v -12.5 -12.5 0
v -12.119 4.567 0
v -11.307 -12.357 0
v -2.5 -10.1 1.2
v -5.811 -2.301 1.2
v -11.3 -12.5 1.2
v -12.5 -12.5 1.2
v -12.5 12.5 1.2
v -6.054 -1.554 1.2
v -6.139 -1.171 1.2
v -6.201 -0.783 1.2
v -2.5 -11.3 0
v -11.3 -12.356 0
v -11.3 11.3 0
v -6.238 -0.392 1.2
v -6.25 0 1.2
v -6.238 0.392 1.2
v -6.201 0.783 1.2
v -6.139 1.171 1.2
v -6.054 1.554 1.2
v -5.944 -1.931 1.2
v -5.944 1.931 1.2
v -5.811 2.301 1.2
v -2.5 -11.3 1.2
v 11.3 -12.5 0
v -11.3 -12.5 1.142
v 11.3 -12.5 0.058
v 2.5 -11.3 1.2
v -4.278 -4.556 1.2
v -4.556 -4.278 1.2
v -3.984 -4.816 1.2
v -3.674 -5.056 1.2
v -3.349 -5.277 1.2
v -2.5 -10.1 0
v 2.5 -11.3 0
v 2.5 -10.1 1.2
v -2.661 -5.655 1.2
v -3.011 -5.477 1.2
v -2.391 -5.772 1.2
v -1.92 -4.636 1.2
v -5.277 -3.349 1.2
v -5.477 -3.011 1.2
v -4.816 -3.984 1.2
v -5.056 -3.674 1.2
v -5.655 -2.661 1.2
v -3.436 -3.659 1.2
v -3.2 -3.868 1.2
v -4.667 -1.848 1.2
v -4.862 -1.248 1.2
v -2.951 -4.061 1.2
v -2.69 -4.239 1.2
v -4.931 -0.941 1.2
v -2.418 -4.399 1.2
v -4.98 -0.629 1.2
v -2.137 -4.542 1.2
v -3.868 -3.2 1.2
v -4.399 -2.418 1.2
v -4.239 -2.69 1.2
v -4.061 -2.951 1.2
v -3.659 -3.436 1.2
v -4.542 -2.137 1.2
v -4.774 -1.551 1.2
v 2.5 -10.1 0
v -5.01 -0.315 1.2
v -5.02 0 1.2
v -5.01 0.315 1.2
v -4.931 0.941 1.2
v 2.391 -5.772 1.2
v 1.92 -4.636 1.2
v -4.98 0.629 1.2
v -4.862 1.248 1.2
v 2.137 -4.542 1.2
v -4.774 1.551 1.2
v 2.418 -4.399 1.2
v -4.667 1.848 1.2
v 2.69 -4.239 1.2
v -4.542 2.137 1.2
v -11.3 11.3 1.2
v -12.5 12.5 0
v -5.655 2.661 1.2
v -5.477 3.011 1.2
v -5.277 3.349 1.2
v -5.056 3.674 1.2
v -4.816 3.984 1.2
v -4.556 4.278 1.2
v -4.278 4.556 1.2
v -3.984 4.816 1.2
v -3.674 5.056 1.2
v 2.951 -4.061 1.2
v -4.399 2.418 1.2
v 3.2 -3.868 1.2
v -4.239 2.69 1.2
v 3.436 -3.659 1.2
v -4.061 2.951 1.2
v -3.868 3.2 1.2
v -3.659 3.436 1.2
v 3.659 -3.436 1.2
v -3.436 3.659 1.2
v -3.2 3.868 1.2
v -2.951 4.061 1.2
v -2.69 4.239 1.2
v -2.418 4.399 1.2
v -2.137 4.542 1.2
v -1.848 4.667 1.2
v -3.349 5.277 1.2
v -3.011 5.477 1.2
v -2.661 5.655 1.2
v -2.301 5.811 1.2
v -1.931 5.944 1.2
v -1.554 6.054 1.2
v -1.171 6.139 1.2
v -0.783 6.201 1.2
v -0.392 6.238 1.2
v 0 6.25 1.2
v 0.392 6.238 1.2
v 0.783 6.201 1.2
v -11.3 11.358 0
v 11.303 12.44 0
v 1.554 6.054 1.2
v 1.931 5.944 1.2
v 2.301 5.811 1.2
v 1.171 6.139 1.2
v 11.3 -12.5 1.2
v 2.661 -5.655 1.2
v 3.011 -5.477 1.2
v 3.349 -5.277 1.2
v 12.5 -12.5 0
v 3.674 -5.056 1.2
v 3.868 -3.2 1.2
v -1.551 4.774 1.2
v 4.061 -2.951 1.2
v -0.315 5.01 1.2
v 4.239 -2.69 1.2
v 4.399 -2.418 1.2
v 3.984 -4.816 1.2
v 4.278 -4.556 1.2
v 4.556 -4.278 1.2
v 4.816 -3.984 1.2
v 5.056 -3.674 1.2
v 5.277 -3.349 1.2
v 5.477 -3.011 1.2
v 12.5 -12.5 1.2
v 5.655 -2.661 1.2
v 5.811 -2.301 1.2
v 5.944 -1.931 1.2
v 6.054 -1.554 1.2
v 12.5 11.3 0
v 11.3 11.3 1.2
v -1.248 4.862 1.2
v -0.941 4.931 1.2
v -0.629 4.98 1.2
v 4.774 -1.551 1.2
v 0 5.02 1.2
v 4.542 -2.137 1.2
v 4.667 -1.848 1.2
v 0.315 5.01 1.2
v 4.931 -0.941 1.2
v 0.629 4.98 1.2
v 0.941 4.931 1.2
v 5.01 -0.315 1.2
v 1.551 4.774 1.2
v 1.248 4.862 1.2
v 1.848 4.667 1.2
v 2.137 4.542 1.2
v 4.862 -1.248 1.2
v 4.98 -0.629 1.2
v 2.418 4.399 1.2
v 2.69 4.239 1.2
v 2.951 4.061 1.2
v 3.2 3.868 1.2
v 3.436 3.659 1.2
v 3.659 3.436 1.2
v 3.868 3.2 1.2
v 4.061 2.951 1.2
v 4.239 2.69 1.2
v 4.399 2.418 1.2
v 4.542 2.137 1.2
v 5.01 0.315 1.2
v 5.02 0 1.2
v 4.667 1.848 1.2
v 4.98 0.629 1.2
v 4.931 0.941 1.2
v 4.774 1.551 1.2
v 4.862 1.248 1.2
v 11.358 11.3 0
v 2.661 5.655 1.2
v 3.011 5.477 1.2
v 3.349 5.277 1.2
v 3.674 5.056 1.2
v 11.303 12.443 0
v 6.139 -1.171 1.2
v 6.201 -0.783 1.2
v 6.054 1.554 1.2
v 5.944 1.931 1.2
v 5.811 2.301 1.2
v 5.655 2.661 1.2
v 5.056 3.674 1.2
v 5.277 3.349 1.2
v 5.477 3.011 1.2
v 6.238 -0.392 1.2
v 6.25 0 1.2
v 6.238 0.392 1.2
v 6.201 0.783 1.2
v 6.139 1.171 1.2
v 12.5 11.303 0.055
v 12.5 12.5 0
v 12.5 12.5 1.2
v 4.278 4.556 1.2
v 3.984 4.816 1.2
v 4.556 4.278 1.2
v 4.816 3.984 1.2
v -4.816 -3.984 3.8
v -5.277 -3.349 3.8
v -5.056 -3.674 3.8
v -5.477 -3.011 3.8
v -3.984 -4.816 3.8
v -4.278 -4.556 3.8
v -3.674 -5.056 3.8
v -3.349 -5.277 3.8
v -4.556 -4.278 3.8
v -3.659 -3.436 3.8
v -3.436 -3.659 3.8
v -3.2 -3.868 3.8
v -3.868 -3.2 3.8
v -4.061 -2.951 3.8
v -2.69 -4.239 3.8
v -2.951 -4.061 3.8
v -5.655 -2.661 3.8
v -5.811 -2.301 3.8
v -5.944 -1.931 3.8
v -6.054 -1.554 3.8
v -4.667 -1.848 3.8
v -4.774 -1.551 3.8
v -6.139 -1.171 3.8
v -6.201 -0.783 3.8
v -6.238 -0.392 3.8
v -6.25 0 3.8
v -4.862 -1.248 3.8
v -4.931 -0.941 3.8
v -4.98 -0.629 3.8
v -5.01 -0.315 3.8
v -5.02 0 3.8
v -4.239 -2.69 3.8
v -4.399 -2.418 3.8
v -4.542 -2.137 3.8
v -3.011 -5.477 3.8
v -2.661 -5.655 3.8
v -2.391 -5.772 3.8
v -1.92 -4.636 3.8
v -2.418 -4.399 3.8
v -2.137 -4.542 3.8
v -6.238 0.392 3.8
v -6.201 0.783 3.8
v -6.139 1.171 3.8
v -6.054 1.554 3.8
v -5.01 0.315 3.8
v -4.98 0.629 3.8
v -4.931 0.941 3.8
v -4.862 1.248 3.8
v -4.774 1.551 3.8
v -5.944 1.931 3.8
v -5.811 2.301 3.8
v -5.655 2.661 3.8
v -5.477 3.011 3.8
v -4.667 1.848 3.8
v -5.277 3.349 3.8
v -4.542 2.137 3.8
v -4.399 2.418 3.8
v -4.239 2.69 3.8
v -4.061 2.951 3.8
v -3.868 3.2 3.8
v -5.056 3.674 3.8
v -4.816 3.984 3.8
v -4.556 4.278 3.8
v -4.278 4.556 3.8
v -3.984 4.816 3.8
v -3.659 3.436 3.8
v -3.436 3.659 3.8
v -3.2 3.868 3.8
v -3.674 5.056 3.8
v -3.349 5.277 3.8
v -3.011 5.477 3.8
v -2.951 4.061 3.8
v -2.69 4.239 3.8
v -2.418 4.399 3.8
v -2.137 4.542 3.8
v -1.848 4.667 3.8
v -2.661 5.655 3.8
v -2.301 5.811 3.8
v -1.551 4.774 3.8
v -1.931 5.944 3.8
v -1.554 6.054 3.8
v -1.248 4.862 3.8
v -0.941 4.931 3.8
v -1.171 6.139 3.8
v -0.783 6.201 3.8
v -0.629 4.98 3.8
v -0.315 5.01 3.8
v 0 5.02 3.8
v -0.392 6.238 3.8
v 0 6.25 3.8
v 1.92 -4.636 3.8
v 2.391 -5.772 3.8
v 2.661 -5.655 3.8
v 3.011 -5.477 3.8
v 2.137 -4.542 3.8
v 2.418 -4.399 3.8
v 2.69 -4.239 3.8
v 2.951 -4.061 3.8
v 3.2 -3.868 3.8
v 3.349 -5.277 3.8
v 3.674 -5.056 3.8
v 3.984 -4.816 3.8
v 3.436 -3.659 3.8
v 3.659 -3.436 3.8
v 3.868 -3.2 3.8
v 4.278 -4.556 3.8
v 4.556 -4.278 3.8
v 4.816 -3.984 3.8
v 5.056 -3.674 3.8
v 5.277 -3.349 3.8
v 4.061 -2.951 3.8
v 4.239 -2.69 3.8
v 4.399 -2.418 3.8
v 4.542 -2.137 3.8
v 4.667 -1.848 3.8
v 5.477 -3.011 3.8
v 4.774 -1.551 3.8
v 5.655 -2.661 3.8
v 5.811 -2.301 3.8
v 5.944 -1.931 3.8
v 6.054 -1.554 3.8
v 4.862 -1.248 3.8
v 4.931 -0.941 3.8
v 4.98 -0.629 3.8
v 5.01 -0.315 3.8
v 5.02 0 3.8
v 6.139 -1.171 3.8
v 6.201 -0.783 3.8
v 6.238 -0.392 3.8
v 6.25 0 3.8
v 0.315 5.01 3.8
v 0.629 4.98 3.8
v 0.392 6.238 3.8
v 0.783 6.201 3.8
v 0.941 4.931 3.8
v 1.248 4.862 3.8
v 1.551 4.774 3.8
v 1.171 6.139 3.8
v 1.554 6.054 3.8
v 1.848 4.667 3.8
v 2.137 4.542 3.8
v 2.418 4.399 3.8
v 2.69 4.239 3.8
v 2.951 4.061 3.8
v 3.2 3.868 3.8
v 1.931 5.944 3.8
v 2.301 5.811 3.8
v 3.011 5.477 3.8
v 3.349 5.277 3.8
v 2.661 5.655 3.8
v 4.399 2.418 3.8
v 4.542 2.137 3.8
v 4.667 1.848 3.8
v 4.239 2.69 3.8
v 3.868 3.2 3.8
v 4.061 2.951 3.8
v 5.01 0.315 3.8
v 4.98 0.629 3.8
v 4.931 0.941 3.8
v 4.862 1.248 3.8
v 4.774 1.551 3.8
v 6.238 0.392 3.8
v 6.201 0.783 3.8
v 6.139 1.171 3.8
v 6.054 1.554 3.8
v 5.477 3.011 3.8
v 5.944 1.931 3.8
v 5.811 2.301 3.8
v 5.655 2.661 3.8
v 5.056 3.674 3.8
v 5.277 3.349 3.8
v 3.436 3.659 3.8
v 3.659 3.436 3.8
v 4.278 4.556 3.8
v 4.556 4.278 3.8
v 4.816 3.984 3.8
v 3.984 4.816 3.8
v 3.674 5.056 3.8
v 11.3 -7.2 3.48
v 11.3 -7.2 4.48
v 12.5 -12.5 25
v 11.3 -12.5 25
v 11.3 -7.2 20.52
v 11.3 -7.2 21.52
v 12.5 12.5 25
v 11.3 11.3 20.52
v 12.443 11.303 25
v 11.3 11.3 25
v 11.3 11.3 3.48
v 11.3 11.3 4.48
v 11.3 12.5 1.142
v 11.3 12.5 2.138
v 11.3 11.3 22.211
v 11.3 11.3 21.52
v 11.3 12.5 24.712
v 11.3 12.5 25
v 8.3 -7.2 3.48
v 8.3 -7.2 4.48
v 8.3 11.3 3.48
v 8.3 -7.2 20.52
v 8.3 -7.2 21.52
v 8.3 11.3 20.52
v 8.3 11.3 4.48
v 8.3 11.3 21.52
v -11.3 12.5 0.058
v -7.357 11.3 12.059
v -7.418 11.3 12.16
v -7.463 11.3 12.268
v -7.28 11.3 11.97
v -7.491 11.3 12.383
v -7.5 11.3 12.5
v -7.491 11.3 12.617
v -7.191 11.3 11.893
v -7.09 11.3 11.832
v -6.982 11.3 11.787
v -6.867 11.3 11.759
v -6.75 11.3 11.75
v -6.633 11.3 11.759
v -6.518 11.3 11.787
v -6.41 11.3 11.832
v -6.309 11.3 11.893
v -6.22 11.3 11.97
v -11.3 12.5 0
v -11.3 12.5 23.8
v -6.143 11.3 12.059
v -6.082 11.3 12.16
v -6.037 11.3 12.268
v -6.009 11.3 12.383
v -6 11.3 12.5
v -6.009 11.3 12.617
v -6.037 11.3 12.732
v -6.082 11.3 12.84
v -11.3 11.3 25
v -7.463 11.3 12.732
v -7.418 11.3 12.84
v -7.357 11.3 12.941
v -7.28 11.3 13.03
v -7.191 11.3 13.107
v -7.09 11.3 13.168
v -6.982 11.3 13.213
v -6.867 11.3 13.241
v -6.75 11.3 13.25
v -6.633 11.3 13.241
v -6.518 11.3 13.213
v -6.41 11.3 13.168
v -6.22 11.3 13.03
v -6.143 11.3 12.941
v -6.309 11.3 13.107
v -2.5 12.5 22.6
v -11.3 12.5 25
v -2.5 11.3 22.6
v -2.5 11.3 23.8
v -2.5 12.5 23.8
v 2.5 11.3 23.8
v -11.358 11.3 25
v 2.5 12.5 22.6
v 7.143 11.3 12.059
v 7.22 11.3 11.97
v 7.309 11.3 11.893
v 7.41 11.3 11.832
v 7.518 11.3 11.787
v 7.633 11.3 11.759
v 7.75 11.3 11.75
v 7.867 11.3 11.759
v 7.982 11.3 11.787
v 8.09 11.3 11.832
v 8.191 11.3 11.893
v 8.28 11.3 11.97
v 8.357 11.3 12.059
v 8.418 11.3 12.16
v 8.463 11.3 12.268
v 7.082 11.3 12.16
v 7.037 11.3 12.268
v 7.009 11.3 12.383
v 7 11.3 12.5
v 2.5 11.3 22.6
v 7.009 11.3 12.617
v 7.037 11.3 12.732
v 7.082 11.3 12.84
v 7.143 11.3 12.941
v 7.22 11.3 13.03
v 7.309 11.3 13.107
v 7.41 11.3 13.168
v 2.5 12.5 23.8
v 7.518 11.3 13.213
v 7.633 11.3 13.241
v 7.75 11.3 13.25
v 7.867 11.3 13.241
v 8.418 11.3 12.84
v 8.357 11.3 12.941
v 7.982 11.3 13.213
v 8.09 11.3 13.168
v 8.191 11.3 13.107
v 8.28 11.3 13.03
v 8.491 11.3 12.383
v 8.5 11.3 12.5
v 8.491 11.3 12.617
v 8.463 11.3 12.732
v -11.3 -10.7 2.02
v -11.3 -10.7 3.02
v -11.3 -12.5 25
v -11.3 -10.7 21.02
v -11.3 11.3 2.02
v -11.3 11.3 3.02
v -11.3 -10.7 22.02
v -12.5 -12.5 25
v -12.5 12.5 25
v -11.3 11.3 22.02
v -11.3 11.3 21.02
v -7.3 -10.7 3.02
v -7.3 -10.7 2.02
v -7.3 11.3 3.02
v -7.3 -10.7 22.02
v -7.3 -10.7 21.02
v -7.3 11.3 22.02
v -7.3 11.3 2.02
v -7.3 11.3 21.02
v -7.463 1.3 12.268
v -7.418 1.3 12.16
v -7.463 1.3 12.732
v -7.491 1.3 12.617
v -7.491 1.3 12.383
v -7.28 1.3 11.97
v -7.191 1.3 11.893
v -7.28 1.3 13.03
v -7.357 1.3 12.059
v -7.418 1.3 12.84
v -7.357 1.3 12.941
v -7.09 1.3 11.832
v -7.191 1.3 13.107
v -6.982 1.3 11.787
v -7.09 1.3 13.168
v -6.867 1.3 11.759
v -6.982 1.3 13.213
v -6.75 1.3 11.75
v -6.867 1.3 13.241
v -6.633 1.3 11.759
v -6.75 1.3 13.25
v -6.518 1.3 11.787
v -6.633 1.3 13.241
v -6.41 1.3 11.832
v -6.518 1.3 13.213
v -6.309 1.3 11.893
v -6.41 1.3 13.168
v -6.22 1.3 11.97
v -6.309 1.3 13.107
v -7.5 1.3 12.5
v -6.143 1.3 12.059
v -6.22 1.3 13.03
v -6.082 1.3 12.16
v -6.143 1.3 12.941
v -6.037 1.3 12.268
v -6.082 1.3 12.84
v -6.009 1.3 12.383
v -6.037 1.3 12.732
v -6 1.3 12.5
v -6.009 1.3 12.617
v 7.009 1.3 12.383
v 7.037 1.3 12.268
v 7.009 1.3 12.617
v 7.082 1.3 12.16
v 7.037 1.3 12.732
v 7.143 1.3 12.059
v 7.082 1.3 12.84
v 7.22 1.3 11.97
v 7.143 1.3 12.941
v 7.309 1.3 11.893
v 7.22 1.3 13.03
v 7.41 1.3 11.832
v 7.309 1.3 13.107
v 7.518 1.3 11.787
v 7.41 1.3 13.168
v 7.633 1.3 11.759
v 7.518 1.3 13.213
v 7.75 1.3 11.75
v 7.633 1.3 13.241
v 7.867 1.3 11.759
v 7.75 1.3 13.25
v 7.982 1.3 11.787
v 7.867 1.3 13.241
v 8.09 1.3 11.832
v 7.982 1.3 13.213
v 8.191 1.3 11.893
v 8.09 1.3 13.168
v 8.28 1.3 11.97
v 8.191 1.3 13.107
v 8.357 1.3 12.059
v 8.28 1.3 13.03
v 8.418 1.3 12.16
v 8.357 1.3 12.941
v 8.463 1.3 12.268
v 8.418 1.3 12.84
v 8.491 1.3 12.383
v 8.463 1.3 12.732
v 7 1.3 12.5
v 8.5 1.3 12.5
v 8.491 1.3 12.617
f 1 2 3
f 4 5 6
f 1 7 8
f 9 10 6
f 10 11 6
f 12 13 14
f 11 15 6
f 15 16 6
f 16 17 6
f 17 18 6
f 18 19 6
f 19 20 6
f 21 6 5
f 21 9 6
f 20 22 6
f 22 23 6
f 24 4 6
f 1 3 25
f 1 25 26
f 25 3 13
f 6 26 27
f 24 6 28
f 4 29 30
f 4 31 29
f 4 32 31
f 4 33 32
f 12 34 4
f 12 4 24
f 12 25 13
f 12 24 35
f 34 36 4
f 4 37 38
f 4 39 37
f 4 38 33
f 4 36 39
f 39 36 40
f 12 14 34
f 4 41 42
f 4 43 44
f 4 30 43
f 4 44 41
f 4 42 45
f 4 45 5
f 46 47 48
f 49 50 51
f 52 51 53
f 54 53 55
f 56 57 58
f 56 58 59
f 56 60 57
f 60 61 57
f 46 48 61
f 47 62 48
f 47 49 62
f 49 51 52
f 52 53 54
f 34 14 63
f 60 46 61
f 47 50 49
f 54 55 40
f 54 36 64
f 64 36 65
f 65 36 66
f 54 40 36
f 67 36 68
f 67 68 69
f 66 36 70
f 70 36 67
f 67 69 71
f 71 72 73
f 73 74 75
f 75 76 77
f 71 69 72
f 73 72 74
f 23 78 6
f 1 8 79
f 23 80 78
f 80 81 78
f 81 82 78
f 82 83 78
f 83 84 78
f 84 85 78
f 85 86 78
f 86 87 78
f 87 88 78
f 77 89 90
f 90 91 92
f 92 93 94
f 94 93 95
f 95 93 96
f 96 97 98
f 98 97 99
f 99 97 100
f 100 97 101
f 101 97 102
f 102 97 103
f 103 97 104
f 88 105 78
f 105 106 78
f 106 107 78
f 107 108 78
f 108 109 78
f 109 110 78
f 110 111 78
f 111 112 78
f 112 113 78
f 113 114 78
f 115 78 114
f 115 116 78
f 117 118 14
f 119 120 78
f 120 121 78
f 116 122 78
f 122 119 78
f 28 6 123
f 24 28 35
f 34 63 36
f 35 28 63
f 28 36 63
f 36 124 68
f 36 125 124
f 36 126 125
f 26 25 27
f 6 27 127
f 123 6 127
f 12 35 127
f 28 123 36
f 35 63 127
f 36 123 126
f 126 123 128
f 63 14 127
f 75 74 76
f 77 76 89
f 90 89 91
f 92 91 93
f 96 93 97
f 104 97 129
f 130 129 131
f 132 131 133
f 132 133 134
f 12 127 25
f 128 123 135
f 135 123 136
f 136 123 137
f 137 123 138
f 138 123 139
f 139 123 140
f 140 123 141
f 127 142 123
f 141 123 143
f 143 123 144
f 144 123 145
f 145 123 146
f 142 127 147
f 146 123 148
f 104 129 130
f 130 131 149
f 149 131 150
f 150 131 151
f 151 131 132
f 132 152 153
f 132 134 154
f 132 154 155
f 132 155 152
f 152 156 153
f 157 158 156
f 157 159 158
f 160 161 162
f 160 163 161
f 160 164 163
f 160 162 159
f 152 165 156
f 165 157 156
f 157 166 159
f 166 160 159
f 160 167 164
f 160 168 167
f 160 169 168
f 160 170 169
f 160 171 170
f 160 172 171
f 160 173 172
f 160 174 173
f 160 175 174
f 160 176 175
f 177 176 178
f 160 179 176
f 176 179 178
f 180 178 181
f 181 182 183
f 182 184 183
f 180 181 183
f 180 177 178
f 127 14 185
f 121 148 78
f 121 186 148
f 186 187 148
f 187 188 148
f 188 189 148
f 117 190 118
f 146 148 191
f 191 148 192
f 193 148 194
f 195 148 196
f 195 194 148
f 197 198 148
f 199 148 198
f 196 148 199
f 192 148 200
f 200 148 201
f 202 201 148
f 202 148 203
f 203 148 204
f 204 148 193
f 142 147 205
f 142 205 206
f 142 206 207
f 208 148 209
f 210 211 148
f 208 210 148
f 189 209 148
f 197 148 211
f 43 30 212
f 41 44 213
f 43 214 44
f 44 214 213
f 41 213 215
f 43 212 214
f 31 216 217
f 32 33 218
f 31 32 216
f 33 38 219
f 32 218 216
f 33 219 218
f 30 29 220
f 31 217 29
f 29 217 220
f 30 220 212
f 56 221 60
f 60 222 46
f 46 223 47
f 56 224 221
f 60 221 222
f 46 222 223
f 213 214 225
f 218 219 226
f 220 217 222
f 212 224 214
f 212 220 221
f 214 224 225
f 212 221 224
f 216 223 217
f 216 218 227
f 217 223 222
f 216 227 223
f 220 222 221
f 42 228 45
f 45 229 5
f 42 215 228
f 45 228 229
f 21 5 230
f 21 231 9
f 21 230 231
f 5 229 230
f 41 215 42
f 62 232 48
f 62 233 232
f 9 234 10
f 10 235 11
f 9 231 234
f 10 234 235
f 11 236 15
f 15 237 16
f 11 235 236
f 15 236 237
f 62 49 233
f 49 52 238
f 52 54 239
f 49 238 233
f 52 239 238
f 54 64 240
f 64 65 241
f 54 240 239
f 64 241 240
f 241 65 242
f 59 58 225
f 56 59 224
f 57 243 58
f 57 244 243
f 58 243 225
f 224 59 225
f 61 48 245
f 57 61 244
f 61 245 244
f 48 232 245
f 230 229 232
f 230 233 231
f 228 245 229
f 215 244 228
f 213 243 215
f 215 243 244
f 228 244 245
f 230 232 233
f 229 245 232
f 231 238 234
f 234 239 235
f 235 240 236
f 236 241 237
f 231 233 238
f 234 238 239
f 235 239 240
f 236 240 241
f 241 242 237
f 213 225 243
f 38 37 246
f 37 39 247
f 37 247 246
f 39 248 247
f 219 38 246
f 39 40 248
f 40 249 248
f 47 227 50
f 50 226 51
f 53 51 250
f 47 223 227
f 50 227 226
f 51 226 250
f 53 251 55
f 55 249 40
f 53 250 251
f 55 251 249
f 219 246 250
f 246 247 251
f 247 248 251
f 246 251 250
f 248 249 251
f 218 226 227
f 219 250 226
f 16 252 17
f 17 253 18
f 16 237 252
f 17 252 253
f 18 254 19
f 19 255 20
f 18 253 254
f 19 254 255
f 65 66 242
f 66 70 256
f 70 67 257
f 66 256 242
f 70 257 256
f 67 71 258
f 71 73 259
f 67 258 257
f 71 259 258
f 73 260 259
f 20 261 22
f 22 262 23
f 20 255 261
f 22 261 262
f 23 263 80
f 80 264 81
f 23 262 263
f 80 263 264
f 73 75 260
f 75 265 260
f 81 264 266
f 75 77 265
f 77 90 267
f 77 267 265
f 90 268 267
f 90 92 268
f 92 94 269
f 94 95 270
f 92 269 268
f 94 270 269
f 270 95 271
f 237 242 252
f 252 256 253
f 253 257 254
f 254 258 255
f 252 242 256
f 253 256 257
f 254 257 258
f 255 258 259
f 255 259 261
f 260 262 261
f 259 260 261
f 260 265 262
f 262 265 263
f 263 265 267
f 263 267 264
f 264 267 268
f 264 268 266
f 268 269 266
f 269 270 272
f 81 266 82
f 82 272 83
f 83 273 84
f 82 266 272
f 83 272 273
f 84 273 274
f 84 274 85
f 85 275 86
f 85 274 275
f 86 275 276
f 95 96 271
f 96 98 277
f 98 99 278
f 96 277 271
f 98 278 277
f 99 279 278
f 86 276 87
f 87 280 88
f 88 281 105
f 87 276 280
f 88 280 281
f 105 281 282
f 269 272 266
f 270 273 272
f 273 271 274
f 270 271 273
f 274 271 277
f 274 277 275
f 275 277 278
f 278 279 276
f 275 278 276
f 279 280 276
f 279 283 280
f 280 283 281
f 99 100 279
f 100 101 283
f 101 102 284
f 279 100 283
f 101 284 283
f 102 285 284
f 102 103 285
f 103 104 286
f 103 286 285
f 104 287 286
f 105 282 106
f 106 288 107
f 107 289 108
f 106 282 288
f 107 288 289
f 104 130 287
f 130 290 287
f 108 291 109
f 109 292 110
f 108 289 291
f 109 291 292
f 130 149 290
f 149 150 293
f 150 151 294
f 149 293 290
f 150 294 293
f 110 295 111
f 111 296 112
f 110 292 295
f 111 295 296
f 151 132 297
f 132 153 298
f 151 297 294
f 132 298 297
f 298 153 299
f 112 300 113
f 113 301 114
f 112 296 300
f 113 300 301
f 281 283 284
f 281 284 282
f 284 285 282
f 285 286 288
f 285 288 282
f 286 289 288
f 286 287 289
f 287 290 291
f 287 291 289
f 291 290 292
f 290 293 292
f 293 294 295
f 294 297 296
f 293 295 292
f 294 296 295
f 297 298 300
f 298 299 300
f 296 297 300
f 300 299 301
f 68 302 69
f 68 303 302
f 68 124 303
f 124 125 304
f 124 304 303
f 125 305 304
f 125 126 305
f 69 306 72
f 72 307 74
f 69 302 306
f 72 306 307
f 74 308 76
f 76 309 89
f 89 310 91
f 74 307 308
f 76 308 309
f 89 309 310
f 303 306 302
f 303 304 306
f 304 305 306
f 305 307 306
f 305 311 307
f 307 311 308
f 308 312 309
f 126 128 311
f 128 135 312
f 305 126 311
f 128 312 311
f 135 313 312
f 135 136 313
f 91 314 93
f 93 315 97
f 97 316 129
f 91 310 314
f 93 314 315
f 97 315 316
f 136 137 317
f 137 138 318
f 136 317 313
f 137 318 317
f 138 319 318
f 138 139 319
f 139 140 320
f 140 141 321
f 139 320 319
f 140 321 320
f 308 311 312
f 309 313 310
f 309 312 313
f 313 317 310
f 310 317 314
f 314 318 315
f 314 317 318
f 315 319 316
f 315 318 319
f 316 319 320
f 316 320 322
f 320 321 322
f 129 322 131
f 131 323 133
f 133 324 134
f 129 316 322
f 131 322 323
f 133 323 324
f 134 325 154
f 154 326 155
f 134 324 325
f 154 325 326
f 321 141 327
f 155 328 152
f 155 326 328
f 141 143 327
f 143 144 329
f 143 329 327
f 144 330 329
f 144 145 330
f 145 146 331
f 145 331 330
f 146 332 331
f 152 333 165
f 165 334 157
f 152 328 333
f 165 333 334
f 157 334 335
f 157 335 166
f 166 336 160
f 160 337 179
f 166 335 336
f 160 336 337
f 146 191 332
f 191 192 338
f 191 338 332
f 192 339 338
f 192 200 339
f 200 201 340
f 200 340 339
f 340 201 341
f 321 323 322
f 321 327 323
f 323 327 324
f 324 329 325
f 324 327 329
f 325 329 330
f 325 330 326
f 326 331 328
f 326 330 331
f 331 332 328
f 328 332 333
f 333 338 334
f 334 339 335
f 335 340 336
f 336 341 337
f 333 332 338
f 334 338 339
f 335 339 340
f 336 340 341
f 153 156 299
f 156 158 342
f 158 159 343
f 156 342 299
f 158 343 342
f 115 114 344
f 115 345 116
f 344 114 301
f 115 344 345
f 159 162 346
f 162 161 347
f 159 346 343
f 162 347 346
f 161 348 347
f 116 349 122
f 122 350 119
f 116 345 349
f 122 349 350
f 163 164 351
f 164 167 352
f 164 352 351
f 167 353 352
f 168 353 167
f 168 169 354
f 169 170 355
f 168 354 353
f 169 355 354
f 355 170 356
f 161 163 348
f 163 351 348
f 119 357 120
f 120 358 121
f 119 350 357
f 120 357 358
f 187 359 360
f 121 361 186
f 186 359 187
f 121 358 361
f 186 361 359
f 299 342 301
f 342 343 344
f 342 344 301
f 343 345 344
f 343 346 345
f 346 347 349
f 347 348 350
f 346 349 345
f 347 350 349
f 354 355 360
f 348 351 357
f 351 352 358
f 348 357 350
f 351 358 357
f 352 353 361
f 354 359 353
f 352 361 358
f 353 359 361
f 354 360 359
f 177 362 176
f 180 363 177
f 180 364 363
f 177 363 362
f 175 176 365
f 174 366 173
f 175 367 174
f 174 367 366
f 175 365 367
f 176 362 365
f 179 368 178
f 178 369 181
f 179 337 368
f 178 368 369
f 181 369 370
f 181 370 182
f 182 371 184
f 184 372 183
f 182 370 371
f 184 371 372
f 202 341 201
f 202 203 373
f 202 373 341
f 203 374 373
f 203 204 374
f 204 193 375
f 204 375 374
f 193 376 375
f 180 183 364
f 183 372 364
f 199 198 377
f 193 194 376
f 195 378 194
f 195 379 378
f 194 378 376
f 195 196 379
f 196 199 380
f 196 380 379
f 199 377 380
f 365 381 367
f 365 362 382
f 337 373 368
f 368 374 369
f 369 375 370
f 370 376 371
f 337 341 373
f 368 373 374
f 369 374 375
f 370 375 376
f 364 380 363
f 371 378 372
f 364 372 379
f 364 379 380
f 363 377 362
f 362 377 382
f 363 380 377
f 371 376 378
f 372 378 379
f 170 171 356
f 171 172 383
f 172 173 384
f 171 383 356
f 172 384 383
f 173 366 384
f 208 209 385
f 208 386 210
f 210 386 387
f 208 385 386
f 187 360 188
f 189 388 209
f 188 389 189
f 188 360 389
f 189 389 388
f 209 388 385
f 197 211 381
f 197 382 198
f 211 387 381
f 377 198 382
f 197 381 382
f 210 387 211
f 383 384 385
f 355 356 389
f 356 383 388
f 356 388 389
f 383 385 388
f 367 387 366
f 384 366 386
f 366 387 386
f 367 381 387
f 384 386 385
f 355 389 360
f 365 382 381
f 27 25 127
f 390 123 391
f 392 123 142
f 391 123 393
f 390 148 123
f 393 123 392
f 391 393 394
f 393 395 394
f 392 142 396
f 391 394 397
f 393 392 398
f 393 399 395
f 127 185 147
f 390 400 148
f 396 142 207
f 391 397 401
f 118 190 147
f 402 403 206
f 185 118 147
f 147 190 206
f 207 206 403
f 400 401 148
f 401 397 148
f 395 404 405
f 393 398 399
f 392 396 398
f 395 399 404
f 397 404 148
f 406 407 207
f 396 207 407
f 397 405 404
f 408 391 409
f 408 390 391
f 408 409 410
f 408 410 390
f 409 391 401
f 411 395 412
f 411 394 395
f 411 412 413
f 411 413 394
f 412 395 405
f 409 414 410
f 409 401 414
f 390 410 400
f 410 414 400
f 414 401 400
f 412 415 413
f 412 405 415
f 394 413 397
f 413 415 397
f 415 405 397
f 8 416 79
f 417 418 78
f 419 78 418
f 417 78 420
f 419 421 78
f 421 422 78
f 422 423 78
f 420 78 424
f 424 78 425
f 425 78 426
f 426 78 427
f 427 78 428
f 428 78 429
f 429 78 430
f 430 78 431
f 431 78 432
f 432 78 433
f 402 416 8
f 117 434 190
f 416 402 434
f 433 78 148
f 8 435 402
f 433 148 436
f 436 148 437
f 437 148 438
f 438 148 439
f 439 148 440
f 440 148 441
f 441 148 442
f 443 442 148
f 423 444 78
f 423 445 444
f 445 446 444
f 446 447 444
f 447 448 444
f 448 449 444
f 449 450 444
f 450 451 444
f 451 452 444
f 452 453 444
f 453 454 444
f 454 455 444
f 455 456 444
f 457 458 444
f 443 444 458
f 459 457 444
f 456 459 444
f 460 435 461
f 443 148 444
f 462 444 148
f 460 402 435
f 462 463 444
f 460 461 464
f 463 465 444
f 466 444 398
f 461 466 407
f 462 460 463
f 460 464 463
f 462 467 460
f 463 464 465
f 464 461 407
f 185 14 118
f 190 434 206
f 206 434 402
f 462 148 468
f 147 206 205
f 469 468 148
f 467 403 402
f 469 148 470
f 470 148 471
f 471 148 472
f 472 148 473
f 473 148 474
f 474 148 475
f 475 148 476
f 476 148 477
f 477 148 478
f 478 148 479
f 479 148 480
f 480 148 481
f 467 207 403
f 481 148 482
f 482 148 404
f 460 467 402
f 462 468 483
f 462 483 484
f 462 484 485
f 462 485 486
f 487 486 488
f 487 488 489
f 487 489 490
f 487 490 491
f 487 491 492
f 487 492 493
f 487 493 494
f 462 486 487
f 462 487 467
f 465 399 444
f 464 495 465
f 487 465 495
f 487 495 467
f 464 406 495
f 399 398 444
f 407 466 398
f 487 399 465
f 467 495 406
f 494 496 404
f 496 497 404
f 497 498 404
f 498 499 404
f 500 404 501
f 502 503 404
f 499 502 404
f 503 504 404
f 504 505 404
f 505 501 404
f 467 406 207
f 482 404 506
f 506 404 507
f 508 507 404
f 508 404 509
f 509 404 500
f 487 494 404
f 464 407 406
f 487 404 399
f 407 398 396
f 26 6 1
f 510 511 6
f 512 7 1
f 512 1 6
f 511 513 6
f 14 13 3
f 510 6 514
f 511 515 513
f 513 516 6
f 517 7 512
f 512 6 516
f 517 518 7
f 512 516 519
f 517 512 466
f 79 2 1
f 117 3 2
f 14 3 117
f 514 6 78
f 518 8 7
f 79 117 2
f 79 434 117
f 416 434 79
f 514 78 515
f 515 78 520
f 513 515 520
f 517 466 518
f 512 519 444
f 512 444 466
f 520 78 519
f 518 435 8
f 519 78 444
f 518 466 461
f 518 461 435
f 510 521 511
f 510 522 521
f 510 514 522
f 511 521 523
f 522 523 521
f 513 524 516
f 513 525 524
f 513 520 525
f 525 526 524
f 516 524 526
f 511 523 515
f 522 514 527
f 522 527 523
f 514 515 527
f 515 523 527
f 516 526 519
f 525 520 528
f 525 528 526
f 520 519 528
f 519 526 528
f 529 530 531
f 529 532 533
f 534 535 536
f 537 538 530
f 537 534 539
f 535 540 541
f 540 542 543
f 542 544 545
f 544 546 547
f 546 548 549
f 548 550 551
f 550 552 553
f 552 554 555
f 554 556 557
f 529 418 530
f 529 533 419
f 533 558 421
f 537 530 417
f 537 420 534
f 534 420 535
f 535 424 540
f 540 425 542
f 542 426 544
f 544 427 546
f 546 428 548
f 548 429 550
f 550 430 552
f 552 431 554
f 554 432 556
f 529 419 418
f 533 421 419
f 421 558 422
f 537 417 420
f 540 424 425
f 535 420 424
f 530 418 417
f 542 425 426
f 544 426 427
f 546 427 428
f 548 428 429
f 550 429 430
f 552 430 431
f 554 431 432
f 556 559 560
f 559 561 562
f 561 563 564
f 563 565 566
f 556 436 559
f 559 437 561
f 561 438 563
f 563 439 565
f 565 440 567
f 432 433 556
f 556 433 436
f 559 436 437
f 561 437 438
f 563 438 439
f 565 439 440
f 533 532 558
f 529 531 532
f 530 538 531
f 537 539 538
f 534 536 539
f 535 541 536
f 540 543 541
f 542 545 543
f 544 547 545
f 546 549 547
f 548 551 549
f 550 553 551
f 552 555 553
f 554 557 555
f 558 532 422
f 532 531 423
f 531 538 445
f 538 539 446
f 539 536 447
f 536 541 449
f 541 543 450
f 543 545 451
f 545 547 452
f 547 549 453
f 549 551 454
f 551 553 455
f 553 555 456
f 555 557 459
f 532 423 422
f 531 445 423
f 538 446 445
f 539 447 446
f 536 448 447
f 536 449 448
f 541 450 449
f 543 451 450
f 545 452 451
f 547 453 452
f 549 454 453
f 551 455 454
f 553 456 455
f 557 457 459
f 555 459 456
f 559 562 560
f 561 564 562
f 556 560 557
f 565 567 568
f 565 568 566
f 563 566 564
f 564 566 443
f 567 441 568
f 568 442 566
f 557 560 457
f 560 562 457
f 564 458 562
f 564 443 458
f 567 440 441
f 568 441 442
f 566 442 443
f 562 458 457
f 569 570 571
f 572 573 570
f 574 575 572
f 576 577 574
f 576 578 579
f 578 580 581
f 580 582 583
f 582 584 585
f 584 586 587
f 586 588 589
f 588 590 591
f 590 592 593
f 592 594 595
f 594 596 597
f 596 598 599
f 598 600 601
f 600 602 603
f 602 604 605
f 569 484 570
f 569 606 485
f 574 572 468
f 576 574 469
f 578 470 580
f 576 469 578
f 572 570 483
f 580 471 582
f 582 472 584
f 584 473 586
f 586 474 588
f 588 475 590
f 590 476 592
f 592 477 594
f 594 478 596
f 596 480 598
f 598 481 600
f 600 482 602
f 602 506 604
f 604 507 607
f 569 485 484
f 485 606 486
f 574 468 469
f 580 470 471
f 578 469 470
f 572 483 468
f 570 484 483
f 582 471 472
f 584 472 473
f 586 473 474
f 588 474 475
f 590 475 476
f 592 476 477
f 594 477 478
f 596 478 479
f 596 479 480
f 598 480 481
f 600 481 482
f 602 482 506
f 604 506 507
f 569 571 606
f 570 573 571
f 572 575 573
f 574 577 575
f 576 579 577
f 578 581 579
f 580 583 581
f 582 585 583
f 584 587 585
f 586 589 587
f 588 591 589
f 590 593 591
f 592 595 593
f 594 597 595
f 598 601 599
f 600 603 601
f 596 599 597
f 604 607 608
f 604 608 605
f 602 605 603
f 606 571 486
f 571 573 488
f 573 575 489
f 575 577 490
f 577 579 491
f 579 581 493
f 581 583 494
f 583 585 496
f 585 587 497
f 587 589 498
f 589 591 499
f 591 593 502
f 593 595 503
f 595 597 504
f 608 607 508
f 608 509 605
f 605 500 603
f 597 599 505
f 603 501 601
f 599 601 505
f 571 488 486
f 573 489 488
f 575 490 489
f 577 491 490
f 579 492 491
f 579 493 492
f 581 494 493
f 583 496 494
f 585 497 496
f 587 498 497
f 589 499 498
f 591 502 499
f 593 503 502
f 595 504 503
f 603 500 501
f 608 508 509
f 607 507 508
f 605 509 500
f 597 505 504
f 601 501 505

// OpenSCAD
// ============================================================
// 하우징 ERM v2 - box 조립 (ERM 면 + 왼쪽/오른쪽/+Y쪽 면)
// ERM 면(2번째 사진, 링): 바닥 (XY 평면, world Z=0)
// 왼쪽 면(1번째 사진): ERM 면의 -X쪽 가장자리에 수직으로 세움
// 오른쪽 면(3번째 사진): ERM 면의 +X쪽 가장자리에 수직으로 세움
//
// 클로져1/클로져2는 housing_erm_closure1_v2.scad / housing_erm_closure2_v2.scad로 분리됨.
// ============================================================

// ---------------- ERM 면 (2번째 사진, 바닥) ----------------
module erm_v2_face() {
    face_size  = 25;   // 면의 가로/세로 (정사각형)
    housing_t  = 1.2;  // 하우징 두께 (사방 테두리)

    ring_margin = 5.05; // 안쪽 테두리(22.6mm 사각형) 기준, 링 위/좌/우 여백
    ring_wall   = 1.23; // 링 벽 두께
    ring_id     = 10.04; // 링 안지름
    ring_r_in   = ring_id / 2;
    ring_r_out  = ring_r_in + ring_wall;

    ring_z      = 2.6;  // 링의 Z방향 깊이 (미확인, 기존 ERM 링과 동일 값으로 가정)

    // 직사각형 구멍 (돌출이 아니라 관통 구멍). 안쪽 모서리(테두리 안쪽 경계선)에 닿은 상태로
    // 거기서부터 안쪽(캐비티 방향)으로 1.2mm 파고드는 형태 - 테두리를 관통하는 게 아님.
    // 링의 뚫린 부분(-Y 방향)에 맞춰 -Y쪽 안쪽 모서리 기준으로 배치
    rect_w = 5;   // X방향 (링 중심과 동일선상)
    rect_h = 1.2; // Y방향 (안쪽 모서리에서 캐비티 쪽으로)

    // ERM 링에서 잘라낼 구간: 3D에서 Y축 음수 방향(270도) 기준 45도
    // (housing_erm.scad 참고)
    erm_gap_center_deg = 270;
    erm_gap_width_deg  = 45;
    erm_gap_r           = ring_r_out + 1; // 확실히 잘리도록 여유

    inner_size = face_size - 2 * housing_t; // 22.6mm

    echo("[ERM_v2] ring_r_out check =", ring_r_out,
         " (inner_size/2 - ring_margin =", inner_size / 2 - ring_margin, ")");

    // 바닥판 (면 전체, 실제 3D, 두께 1.2mm). -Y쪽 안쪽 모서리에 닿고 캐비티 쪽으로
    // 1.2mm 파고드는 5mm x 1.2mm 관통 구멍 (테두리 자체는 관통하지 않음).
    color("gray")
        difference() {
            linear_extrude(height = housing_t)
                square([face_size, face_size], center = true);
            translate([-rect_w / 2, -face_size / 2 + housing_t, -0.1])
                cube([rect_w, rect_h, housing_t + 0.2]);
        }

    // ERM 고정 링 (실제 3D, 바닥판 위에 Z 깊이 ring_z 추가), 중앙 정렬, 9시 방향 45도 절개
    color("SteelBlue")
        translate([0, 0, housing_t])
            linear_extrude(height = ring_z)
                difference() {
                    difference() {
                        circle(r = ring_r_out, $fn = 100);
                        circle(r = ring_r_in, $fn = 100);
                    }
                    polygon(points = [
                        [0, 0],
                        [erm_gap_r * cos(erm_gap_center_deg - erm_gap_width_deg / 2),
                         erm_gap_r * sin(erm_gap_center_deg - erm_gap_width_deg / 2)],
                        [erm_gap_r * cos(erm_gap_center_deg + erm_gap_width_deg / 2),
                         erm_gap_r * sin(erm_gap_center_deg + erm_gap_width_deg / 2)]
                    ]);
                }
}

// ---------------- 왼쪽 면 (1번째 사진) ----------------
module left_v2_face() {
    face_size  = 25;    // 면의 가로/세로 (정사각형)
    housing_t  = 1.2;   // 하우징 두께 (위/아래 테두리)

    bracket_t  = 1;      // 브라켓 두께 (X방향)
    bracket_len = 22;    // 브라켓 길이 (Y방향)
    bracket_z  = 4;      // 브라켓 높이 (Z방향 돌출)

    open_w     = 17.04;  // 브라켓 사이 뚫린 공간 가로 폭
    edge_margin = 2.98;  // 브라켓 - 바깥쪽 모서리 거리

    // Y축: 브라켓 위쪽 끝이 안쪽 모서리(위쪽 테두리 안쪽)에 닿음
    y_inner_top = face_size / 2 - housing_t;      // 안쪽 위쪽 테두리 (11.3)
    y_bracket_bottom = y_inner_top - bracket_len; // 브라켓 아래쪽 끝
    y_inner_bottom = -face_size / 2 + housing_t;  // 안쪽 아래쪽 테두리 (-11.3)
    gap_bottom_check = y_bracket_bottom - y_inner_bottom; // 0.6mm 이어야 함

    bracket_center_y = (y_inner_top + y_bracket_bottom) / 2;

    // X축: 브라켓 2개 (부착 후 world Z축 방향으로 대응 - 로컬 X가 world Z에 매핑됨).
    // right_bracket(로컬 X 양수 -> world Z 음수 방향)을 world Z 음수 방향으로 추가 이동하여
    // 두 브라켓 사이 간격(world Z 방향)을 원래 17.04mm에서 18mm로 늘림 (0.96mm 이동).
    // world_z = hs - local_x 매핑이므로, world -Z로 이동 = local_x 증가.
    z_neg_bracket_shift = 0.96;

    left_bracket_center_x  = -face_size / 2 + edge_margin + bracket_t / 2;
    right_bracket_center_x =  face_size / 2 - edge_margin - bracket_t / 2 + z_neg_bracket_shift;
    x_total_check = edge_margin * 2 + bracket_t * 2 + open_w;
    gap_z_check = open_w + z_neg_bracket_shift; // 브라켓 사이 world Z 간격, 18이어야 함

    echo("[Left_v2] gap_bottom check =", gap_bottom_check, " (should be 0.6)");
    echo("[Left_v2] x_total check =", x_total_check, " (should be", face_size, ")");
    echo("[Left_v2] right_bracket_center_x =", right_bracket_center_x);
    echo("[Left_v2] gap_z_check =", gap_z_check, " (should be 18)");

    // 바닥판 (면 전체, 실제 3D, 두께 1.2mm)
    color("gray")
        linear_extrude(height = housing_t)
            square([face_size, face_size], center = true);

    // 브라켓 2개 (실제 3D, 바닥판 위에 Z 깊이 bracket_z 추가)
    color("SteelBlue")
        translate([0, 0, housing_t])
            linear_extrude(height = bracket_z) {
                translate([left_bracket_center_x, bracket_center_y])
                    square([bracket_t, bracket_len], center = true);
                translate([right_bracket_center_x, bracket_center_y])
                    square([bracket_t, bracket_len], center = true);
            }
}

// ---------------- 오른쪽 면 (3번째 사진) ----------------
module right_v2_face() {
    face_size  = 25;    // 면의 가로/세로 (정사각형)
    housing_t  = 1.2;   // 하우징 두께 (위/아래 테두리)

    bracket_t  = 1;      // 브라켓 두께 (X방향)
    bracket_len = 18.5;  // 브라켓 길이 (Y방향)
    bracket_z  = 3;      // 브라켓 높이 (Z방향 돌출)

    open_w     = 16.04;  // 브라켓 사이 뚫린 공간 가로 폭
    edge_margin = 3.48;  // 브라켓 - 바깥쪽 모서리 거리

    // Y축: 브라켓 위쪽 끝이 안쪽 모서리(위쪽 테두리 안쪽)에 닿음
    y_inner_top = face_size / 2 - housing_t;      // 안쪽 위쪽 테두리 (11.3)
    y_bracket_bottom = y_inner_top - bracket_len; // 브라켓 아래쪽 끝
    y_inner_bottom = -face_size / 2 + housing_t;  // 안쪽 아래쪽 테두리 (-11.3)
    gap_bottom_check = y_bracket_bottom - y_inner_bottom; // 4.1mm 이어야 함

    bracket_center_y = (y_inner_top + y_bracket_bottom) / 2;

    // X축: 브라켓 2개
    left_bracket_center_x  = -face_size / 2 + edge_margin + bracket_t / 2;
    right_bracket_center_x =  face_size / 2 - edge_margin - bracket_t / 2;
    x_total_check = edge_margin * 2 + bracket_t * 2 + open_w;

    echo("[Right_v2] gap_bottom check =", gap_bottom_check, " (should be 4.1)");
    echo("[Right_v2] x_total check =", x_total_check, " (should be", face_size, ")");

    // 바닥판 (면 전체, 실제 3D, 두께 1.2mm)
    color("gray")
        linear_extrude(height = housing_t)
            square([face_size, face_size], center = true);

    // 브라켓 2개 (실제 3D, 바닥판 위에 Z 깊이 bracket_z 추가)
    color("SteelBlue")
        translate([0, 0, housing_t])
            linear_extrude(height = bracket_z) {
                translate([left_bracket_center_x, bracket_center_y])
                    square([bracket_t, bracket_len], center = true);
                translate([right_bracket_center_x, bracket_center_y])
                    square([bracket_t, bracket_len], center = true);
            }
}

// ---------------- +Y쪽 면 ----------------
// 1.2mm 두께 벽. 높이는 왼쪽/오른쪽 면과 동일(25mm).
// world Z축 양수 방향 모서리(local y=+12.5)에서 1.2mm 아래에 5mm x 1.2mm 관통 구멍.
module y_pos_v2_face() {
    face_size = 25;   // 면의 가로/세로 (정사각형, 왼쪽/오른쪽 면과 동일)
    housing_t = 1.2;  // 하우징 두께 (벽 두께)

    rect_w = 5;   // X방향 (가운데 정렬)
    rect_h = 1.2; // Y방향 (world Z 양수 모서리에서 1.2mm 아래로 내려간 위치)

    color("gray")
        difference() {
            linear_extrude(height = housing_t)
                square([face_size, face_size], center = true);
            translate([-rect_w / 2, face_size / 2 - rect_h - 1.2, -0.1])
                cube([rect_w, rect_h, housing_t + 0.2]);
        }

    // 원기둥 2개: 지름 1.5mm, 길이 10mm. 벽 안쪽 면에서 world Y축 음수 방향(캐비티 쪽)으로
    // 돌출. 로컬 Z가 world Y(깊이)에 대응하므로 housing_t 위치에서 시작해 10mm 돌출시키면
    // world -Y 방향으로 뻗어나감. 높이는 벽 중앙(world Z=12.5, 로컬 y=0).
    // pin1: 간격이 더 넓은 브라켓 면(-X쪽, left_v2_face) 기준 4.5mm 위치에서
    //       X축 양수 방향으로 1.25mm 추가 이동 (-8 -> -6.75, 서로 가까워지는 방향)
    // pin2: 간격이 더 좁은 브라켓 면(+X쪽, right_v2_face) 기준 3.5mm 위치에서
    //       X축 음수 방향으로 1.25mm 추가 이동 (9 -> 7.75) - pin1과 반대 방향
    pin_d = 1.5;
    pin_len = 10;
    pin1_x = -face_size / 2 + 4.5 + 1.25; // -6.75
    pin2_x =  face_size / 2 - 3.5 - 1.25; //  7.75

    echo("[YPos_v2] pin1_x =", pin1_x, " pin2_x =", pin2_x);

    color("SteelBlue") {
        translate([pin1_x, 0, housing_t])
            cylinder(d = pin_d, h = pin_len, $fn = 40);
        translate([pin2_x, 0, housing_t])
            cylinder(d = pin_d, h = pin_len, $fn = 40);
    }
}

// ---------------- 조립 ----------------
erm_v2_face();

// 왼쪽 면을 ERM 면의 -X쪽 가장자리(x=-12.5)에 수직으로 세움.
// 로컬 Y -> world Z, 로컬 Z(브라켓 돌출) -> world +X
// 면 안의 패턴(브라켓)은 제자리에서 90도 회전 (반대 방향: 브라켓이 닿는 쪽이 world +Y를 향하도록).
translate([-12.5, 0, 12.5])
    rotate([0, 0, 90])
        rotate([90, 0, 0])
            rotate([0, 0, -90])
                left_v2_face();

// 오른쪽 면을 ERM 면의 +X쪽 가장자리(x=12.5)에 수직으로 세움.
// 로컬 Y -> world Z, 로컬 Z(브라켓 돌출) -> world -X
// 면 안의 패턴(브라켓)은 제자리에서 90도 회전.
translate([12.5, 0, 12.5])
    rotate([0, 0, -90])
        rotate([90, 0, 0])
            rotate([0, 0, 90])
                right_v2_face();

// +Y쪽 면을 ERM 면의 +Y쪽 가장자리(y=12.5)에 수직으로 세움. 높이는 왼쪽/오른쪽 면과 동일(25mm).
translate([0, 12.5, 12.5])
    rotate([90, 0, 0])
        y_pos_v2_face();
